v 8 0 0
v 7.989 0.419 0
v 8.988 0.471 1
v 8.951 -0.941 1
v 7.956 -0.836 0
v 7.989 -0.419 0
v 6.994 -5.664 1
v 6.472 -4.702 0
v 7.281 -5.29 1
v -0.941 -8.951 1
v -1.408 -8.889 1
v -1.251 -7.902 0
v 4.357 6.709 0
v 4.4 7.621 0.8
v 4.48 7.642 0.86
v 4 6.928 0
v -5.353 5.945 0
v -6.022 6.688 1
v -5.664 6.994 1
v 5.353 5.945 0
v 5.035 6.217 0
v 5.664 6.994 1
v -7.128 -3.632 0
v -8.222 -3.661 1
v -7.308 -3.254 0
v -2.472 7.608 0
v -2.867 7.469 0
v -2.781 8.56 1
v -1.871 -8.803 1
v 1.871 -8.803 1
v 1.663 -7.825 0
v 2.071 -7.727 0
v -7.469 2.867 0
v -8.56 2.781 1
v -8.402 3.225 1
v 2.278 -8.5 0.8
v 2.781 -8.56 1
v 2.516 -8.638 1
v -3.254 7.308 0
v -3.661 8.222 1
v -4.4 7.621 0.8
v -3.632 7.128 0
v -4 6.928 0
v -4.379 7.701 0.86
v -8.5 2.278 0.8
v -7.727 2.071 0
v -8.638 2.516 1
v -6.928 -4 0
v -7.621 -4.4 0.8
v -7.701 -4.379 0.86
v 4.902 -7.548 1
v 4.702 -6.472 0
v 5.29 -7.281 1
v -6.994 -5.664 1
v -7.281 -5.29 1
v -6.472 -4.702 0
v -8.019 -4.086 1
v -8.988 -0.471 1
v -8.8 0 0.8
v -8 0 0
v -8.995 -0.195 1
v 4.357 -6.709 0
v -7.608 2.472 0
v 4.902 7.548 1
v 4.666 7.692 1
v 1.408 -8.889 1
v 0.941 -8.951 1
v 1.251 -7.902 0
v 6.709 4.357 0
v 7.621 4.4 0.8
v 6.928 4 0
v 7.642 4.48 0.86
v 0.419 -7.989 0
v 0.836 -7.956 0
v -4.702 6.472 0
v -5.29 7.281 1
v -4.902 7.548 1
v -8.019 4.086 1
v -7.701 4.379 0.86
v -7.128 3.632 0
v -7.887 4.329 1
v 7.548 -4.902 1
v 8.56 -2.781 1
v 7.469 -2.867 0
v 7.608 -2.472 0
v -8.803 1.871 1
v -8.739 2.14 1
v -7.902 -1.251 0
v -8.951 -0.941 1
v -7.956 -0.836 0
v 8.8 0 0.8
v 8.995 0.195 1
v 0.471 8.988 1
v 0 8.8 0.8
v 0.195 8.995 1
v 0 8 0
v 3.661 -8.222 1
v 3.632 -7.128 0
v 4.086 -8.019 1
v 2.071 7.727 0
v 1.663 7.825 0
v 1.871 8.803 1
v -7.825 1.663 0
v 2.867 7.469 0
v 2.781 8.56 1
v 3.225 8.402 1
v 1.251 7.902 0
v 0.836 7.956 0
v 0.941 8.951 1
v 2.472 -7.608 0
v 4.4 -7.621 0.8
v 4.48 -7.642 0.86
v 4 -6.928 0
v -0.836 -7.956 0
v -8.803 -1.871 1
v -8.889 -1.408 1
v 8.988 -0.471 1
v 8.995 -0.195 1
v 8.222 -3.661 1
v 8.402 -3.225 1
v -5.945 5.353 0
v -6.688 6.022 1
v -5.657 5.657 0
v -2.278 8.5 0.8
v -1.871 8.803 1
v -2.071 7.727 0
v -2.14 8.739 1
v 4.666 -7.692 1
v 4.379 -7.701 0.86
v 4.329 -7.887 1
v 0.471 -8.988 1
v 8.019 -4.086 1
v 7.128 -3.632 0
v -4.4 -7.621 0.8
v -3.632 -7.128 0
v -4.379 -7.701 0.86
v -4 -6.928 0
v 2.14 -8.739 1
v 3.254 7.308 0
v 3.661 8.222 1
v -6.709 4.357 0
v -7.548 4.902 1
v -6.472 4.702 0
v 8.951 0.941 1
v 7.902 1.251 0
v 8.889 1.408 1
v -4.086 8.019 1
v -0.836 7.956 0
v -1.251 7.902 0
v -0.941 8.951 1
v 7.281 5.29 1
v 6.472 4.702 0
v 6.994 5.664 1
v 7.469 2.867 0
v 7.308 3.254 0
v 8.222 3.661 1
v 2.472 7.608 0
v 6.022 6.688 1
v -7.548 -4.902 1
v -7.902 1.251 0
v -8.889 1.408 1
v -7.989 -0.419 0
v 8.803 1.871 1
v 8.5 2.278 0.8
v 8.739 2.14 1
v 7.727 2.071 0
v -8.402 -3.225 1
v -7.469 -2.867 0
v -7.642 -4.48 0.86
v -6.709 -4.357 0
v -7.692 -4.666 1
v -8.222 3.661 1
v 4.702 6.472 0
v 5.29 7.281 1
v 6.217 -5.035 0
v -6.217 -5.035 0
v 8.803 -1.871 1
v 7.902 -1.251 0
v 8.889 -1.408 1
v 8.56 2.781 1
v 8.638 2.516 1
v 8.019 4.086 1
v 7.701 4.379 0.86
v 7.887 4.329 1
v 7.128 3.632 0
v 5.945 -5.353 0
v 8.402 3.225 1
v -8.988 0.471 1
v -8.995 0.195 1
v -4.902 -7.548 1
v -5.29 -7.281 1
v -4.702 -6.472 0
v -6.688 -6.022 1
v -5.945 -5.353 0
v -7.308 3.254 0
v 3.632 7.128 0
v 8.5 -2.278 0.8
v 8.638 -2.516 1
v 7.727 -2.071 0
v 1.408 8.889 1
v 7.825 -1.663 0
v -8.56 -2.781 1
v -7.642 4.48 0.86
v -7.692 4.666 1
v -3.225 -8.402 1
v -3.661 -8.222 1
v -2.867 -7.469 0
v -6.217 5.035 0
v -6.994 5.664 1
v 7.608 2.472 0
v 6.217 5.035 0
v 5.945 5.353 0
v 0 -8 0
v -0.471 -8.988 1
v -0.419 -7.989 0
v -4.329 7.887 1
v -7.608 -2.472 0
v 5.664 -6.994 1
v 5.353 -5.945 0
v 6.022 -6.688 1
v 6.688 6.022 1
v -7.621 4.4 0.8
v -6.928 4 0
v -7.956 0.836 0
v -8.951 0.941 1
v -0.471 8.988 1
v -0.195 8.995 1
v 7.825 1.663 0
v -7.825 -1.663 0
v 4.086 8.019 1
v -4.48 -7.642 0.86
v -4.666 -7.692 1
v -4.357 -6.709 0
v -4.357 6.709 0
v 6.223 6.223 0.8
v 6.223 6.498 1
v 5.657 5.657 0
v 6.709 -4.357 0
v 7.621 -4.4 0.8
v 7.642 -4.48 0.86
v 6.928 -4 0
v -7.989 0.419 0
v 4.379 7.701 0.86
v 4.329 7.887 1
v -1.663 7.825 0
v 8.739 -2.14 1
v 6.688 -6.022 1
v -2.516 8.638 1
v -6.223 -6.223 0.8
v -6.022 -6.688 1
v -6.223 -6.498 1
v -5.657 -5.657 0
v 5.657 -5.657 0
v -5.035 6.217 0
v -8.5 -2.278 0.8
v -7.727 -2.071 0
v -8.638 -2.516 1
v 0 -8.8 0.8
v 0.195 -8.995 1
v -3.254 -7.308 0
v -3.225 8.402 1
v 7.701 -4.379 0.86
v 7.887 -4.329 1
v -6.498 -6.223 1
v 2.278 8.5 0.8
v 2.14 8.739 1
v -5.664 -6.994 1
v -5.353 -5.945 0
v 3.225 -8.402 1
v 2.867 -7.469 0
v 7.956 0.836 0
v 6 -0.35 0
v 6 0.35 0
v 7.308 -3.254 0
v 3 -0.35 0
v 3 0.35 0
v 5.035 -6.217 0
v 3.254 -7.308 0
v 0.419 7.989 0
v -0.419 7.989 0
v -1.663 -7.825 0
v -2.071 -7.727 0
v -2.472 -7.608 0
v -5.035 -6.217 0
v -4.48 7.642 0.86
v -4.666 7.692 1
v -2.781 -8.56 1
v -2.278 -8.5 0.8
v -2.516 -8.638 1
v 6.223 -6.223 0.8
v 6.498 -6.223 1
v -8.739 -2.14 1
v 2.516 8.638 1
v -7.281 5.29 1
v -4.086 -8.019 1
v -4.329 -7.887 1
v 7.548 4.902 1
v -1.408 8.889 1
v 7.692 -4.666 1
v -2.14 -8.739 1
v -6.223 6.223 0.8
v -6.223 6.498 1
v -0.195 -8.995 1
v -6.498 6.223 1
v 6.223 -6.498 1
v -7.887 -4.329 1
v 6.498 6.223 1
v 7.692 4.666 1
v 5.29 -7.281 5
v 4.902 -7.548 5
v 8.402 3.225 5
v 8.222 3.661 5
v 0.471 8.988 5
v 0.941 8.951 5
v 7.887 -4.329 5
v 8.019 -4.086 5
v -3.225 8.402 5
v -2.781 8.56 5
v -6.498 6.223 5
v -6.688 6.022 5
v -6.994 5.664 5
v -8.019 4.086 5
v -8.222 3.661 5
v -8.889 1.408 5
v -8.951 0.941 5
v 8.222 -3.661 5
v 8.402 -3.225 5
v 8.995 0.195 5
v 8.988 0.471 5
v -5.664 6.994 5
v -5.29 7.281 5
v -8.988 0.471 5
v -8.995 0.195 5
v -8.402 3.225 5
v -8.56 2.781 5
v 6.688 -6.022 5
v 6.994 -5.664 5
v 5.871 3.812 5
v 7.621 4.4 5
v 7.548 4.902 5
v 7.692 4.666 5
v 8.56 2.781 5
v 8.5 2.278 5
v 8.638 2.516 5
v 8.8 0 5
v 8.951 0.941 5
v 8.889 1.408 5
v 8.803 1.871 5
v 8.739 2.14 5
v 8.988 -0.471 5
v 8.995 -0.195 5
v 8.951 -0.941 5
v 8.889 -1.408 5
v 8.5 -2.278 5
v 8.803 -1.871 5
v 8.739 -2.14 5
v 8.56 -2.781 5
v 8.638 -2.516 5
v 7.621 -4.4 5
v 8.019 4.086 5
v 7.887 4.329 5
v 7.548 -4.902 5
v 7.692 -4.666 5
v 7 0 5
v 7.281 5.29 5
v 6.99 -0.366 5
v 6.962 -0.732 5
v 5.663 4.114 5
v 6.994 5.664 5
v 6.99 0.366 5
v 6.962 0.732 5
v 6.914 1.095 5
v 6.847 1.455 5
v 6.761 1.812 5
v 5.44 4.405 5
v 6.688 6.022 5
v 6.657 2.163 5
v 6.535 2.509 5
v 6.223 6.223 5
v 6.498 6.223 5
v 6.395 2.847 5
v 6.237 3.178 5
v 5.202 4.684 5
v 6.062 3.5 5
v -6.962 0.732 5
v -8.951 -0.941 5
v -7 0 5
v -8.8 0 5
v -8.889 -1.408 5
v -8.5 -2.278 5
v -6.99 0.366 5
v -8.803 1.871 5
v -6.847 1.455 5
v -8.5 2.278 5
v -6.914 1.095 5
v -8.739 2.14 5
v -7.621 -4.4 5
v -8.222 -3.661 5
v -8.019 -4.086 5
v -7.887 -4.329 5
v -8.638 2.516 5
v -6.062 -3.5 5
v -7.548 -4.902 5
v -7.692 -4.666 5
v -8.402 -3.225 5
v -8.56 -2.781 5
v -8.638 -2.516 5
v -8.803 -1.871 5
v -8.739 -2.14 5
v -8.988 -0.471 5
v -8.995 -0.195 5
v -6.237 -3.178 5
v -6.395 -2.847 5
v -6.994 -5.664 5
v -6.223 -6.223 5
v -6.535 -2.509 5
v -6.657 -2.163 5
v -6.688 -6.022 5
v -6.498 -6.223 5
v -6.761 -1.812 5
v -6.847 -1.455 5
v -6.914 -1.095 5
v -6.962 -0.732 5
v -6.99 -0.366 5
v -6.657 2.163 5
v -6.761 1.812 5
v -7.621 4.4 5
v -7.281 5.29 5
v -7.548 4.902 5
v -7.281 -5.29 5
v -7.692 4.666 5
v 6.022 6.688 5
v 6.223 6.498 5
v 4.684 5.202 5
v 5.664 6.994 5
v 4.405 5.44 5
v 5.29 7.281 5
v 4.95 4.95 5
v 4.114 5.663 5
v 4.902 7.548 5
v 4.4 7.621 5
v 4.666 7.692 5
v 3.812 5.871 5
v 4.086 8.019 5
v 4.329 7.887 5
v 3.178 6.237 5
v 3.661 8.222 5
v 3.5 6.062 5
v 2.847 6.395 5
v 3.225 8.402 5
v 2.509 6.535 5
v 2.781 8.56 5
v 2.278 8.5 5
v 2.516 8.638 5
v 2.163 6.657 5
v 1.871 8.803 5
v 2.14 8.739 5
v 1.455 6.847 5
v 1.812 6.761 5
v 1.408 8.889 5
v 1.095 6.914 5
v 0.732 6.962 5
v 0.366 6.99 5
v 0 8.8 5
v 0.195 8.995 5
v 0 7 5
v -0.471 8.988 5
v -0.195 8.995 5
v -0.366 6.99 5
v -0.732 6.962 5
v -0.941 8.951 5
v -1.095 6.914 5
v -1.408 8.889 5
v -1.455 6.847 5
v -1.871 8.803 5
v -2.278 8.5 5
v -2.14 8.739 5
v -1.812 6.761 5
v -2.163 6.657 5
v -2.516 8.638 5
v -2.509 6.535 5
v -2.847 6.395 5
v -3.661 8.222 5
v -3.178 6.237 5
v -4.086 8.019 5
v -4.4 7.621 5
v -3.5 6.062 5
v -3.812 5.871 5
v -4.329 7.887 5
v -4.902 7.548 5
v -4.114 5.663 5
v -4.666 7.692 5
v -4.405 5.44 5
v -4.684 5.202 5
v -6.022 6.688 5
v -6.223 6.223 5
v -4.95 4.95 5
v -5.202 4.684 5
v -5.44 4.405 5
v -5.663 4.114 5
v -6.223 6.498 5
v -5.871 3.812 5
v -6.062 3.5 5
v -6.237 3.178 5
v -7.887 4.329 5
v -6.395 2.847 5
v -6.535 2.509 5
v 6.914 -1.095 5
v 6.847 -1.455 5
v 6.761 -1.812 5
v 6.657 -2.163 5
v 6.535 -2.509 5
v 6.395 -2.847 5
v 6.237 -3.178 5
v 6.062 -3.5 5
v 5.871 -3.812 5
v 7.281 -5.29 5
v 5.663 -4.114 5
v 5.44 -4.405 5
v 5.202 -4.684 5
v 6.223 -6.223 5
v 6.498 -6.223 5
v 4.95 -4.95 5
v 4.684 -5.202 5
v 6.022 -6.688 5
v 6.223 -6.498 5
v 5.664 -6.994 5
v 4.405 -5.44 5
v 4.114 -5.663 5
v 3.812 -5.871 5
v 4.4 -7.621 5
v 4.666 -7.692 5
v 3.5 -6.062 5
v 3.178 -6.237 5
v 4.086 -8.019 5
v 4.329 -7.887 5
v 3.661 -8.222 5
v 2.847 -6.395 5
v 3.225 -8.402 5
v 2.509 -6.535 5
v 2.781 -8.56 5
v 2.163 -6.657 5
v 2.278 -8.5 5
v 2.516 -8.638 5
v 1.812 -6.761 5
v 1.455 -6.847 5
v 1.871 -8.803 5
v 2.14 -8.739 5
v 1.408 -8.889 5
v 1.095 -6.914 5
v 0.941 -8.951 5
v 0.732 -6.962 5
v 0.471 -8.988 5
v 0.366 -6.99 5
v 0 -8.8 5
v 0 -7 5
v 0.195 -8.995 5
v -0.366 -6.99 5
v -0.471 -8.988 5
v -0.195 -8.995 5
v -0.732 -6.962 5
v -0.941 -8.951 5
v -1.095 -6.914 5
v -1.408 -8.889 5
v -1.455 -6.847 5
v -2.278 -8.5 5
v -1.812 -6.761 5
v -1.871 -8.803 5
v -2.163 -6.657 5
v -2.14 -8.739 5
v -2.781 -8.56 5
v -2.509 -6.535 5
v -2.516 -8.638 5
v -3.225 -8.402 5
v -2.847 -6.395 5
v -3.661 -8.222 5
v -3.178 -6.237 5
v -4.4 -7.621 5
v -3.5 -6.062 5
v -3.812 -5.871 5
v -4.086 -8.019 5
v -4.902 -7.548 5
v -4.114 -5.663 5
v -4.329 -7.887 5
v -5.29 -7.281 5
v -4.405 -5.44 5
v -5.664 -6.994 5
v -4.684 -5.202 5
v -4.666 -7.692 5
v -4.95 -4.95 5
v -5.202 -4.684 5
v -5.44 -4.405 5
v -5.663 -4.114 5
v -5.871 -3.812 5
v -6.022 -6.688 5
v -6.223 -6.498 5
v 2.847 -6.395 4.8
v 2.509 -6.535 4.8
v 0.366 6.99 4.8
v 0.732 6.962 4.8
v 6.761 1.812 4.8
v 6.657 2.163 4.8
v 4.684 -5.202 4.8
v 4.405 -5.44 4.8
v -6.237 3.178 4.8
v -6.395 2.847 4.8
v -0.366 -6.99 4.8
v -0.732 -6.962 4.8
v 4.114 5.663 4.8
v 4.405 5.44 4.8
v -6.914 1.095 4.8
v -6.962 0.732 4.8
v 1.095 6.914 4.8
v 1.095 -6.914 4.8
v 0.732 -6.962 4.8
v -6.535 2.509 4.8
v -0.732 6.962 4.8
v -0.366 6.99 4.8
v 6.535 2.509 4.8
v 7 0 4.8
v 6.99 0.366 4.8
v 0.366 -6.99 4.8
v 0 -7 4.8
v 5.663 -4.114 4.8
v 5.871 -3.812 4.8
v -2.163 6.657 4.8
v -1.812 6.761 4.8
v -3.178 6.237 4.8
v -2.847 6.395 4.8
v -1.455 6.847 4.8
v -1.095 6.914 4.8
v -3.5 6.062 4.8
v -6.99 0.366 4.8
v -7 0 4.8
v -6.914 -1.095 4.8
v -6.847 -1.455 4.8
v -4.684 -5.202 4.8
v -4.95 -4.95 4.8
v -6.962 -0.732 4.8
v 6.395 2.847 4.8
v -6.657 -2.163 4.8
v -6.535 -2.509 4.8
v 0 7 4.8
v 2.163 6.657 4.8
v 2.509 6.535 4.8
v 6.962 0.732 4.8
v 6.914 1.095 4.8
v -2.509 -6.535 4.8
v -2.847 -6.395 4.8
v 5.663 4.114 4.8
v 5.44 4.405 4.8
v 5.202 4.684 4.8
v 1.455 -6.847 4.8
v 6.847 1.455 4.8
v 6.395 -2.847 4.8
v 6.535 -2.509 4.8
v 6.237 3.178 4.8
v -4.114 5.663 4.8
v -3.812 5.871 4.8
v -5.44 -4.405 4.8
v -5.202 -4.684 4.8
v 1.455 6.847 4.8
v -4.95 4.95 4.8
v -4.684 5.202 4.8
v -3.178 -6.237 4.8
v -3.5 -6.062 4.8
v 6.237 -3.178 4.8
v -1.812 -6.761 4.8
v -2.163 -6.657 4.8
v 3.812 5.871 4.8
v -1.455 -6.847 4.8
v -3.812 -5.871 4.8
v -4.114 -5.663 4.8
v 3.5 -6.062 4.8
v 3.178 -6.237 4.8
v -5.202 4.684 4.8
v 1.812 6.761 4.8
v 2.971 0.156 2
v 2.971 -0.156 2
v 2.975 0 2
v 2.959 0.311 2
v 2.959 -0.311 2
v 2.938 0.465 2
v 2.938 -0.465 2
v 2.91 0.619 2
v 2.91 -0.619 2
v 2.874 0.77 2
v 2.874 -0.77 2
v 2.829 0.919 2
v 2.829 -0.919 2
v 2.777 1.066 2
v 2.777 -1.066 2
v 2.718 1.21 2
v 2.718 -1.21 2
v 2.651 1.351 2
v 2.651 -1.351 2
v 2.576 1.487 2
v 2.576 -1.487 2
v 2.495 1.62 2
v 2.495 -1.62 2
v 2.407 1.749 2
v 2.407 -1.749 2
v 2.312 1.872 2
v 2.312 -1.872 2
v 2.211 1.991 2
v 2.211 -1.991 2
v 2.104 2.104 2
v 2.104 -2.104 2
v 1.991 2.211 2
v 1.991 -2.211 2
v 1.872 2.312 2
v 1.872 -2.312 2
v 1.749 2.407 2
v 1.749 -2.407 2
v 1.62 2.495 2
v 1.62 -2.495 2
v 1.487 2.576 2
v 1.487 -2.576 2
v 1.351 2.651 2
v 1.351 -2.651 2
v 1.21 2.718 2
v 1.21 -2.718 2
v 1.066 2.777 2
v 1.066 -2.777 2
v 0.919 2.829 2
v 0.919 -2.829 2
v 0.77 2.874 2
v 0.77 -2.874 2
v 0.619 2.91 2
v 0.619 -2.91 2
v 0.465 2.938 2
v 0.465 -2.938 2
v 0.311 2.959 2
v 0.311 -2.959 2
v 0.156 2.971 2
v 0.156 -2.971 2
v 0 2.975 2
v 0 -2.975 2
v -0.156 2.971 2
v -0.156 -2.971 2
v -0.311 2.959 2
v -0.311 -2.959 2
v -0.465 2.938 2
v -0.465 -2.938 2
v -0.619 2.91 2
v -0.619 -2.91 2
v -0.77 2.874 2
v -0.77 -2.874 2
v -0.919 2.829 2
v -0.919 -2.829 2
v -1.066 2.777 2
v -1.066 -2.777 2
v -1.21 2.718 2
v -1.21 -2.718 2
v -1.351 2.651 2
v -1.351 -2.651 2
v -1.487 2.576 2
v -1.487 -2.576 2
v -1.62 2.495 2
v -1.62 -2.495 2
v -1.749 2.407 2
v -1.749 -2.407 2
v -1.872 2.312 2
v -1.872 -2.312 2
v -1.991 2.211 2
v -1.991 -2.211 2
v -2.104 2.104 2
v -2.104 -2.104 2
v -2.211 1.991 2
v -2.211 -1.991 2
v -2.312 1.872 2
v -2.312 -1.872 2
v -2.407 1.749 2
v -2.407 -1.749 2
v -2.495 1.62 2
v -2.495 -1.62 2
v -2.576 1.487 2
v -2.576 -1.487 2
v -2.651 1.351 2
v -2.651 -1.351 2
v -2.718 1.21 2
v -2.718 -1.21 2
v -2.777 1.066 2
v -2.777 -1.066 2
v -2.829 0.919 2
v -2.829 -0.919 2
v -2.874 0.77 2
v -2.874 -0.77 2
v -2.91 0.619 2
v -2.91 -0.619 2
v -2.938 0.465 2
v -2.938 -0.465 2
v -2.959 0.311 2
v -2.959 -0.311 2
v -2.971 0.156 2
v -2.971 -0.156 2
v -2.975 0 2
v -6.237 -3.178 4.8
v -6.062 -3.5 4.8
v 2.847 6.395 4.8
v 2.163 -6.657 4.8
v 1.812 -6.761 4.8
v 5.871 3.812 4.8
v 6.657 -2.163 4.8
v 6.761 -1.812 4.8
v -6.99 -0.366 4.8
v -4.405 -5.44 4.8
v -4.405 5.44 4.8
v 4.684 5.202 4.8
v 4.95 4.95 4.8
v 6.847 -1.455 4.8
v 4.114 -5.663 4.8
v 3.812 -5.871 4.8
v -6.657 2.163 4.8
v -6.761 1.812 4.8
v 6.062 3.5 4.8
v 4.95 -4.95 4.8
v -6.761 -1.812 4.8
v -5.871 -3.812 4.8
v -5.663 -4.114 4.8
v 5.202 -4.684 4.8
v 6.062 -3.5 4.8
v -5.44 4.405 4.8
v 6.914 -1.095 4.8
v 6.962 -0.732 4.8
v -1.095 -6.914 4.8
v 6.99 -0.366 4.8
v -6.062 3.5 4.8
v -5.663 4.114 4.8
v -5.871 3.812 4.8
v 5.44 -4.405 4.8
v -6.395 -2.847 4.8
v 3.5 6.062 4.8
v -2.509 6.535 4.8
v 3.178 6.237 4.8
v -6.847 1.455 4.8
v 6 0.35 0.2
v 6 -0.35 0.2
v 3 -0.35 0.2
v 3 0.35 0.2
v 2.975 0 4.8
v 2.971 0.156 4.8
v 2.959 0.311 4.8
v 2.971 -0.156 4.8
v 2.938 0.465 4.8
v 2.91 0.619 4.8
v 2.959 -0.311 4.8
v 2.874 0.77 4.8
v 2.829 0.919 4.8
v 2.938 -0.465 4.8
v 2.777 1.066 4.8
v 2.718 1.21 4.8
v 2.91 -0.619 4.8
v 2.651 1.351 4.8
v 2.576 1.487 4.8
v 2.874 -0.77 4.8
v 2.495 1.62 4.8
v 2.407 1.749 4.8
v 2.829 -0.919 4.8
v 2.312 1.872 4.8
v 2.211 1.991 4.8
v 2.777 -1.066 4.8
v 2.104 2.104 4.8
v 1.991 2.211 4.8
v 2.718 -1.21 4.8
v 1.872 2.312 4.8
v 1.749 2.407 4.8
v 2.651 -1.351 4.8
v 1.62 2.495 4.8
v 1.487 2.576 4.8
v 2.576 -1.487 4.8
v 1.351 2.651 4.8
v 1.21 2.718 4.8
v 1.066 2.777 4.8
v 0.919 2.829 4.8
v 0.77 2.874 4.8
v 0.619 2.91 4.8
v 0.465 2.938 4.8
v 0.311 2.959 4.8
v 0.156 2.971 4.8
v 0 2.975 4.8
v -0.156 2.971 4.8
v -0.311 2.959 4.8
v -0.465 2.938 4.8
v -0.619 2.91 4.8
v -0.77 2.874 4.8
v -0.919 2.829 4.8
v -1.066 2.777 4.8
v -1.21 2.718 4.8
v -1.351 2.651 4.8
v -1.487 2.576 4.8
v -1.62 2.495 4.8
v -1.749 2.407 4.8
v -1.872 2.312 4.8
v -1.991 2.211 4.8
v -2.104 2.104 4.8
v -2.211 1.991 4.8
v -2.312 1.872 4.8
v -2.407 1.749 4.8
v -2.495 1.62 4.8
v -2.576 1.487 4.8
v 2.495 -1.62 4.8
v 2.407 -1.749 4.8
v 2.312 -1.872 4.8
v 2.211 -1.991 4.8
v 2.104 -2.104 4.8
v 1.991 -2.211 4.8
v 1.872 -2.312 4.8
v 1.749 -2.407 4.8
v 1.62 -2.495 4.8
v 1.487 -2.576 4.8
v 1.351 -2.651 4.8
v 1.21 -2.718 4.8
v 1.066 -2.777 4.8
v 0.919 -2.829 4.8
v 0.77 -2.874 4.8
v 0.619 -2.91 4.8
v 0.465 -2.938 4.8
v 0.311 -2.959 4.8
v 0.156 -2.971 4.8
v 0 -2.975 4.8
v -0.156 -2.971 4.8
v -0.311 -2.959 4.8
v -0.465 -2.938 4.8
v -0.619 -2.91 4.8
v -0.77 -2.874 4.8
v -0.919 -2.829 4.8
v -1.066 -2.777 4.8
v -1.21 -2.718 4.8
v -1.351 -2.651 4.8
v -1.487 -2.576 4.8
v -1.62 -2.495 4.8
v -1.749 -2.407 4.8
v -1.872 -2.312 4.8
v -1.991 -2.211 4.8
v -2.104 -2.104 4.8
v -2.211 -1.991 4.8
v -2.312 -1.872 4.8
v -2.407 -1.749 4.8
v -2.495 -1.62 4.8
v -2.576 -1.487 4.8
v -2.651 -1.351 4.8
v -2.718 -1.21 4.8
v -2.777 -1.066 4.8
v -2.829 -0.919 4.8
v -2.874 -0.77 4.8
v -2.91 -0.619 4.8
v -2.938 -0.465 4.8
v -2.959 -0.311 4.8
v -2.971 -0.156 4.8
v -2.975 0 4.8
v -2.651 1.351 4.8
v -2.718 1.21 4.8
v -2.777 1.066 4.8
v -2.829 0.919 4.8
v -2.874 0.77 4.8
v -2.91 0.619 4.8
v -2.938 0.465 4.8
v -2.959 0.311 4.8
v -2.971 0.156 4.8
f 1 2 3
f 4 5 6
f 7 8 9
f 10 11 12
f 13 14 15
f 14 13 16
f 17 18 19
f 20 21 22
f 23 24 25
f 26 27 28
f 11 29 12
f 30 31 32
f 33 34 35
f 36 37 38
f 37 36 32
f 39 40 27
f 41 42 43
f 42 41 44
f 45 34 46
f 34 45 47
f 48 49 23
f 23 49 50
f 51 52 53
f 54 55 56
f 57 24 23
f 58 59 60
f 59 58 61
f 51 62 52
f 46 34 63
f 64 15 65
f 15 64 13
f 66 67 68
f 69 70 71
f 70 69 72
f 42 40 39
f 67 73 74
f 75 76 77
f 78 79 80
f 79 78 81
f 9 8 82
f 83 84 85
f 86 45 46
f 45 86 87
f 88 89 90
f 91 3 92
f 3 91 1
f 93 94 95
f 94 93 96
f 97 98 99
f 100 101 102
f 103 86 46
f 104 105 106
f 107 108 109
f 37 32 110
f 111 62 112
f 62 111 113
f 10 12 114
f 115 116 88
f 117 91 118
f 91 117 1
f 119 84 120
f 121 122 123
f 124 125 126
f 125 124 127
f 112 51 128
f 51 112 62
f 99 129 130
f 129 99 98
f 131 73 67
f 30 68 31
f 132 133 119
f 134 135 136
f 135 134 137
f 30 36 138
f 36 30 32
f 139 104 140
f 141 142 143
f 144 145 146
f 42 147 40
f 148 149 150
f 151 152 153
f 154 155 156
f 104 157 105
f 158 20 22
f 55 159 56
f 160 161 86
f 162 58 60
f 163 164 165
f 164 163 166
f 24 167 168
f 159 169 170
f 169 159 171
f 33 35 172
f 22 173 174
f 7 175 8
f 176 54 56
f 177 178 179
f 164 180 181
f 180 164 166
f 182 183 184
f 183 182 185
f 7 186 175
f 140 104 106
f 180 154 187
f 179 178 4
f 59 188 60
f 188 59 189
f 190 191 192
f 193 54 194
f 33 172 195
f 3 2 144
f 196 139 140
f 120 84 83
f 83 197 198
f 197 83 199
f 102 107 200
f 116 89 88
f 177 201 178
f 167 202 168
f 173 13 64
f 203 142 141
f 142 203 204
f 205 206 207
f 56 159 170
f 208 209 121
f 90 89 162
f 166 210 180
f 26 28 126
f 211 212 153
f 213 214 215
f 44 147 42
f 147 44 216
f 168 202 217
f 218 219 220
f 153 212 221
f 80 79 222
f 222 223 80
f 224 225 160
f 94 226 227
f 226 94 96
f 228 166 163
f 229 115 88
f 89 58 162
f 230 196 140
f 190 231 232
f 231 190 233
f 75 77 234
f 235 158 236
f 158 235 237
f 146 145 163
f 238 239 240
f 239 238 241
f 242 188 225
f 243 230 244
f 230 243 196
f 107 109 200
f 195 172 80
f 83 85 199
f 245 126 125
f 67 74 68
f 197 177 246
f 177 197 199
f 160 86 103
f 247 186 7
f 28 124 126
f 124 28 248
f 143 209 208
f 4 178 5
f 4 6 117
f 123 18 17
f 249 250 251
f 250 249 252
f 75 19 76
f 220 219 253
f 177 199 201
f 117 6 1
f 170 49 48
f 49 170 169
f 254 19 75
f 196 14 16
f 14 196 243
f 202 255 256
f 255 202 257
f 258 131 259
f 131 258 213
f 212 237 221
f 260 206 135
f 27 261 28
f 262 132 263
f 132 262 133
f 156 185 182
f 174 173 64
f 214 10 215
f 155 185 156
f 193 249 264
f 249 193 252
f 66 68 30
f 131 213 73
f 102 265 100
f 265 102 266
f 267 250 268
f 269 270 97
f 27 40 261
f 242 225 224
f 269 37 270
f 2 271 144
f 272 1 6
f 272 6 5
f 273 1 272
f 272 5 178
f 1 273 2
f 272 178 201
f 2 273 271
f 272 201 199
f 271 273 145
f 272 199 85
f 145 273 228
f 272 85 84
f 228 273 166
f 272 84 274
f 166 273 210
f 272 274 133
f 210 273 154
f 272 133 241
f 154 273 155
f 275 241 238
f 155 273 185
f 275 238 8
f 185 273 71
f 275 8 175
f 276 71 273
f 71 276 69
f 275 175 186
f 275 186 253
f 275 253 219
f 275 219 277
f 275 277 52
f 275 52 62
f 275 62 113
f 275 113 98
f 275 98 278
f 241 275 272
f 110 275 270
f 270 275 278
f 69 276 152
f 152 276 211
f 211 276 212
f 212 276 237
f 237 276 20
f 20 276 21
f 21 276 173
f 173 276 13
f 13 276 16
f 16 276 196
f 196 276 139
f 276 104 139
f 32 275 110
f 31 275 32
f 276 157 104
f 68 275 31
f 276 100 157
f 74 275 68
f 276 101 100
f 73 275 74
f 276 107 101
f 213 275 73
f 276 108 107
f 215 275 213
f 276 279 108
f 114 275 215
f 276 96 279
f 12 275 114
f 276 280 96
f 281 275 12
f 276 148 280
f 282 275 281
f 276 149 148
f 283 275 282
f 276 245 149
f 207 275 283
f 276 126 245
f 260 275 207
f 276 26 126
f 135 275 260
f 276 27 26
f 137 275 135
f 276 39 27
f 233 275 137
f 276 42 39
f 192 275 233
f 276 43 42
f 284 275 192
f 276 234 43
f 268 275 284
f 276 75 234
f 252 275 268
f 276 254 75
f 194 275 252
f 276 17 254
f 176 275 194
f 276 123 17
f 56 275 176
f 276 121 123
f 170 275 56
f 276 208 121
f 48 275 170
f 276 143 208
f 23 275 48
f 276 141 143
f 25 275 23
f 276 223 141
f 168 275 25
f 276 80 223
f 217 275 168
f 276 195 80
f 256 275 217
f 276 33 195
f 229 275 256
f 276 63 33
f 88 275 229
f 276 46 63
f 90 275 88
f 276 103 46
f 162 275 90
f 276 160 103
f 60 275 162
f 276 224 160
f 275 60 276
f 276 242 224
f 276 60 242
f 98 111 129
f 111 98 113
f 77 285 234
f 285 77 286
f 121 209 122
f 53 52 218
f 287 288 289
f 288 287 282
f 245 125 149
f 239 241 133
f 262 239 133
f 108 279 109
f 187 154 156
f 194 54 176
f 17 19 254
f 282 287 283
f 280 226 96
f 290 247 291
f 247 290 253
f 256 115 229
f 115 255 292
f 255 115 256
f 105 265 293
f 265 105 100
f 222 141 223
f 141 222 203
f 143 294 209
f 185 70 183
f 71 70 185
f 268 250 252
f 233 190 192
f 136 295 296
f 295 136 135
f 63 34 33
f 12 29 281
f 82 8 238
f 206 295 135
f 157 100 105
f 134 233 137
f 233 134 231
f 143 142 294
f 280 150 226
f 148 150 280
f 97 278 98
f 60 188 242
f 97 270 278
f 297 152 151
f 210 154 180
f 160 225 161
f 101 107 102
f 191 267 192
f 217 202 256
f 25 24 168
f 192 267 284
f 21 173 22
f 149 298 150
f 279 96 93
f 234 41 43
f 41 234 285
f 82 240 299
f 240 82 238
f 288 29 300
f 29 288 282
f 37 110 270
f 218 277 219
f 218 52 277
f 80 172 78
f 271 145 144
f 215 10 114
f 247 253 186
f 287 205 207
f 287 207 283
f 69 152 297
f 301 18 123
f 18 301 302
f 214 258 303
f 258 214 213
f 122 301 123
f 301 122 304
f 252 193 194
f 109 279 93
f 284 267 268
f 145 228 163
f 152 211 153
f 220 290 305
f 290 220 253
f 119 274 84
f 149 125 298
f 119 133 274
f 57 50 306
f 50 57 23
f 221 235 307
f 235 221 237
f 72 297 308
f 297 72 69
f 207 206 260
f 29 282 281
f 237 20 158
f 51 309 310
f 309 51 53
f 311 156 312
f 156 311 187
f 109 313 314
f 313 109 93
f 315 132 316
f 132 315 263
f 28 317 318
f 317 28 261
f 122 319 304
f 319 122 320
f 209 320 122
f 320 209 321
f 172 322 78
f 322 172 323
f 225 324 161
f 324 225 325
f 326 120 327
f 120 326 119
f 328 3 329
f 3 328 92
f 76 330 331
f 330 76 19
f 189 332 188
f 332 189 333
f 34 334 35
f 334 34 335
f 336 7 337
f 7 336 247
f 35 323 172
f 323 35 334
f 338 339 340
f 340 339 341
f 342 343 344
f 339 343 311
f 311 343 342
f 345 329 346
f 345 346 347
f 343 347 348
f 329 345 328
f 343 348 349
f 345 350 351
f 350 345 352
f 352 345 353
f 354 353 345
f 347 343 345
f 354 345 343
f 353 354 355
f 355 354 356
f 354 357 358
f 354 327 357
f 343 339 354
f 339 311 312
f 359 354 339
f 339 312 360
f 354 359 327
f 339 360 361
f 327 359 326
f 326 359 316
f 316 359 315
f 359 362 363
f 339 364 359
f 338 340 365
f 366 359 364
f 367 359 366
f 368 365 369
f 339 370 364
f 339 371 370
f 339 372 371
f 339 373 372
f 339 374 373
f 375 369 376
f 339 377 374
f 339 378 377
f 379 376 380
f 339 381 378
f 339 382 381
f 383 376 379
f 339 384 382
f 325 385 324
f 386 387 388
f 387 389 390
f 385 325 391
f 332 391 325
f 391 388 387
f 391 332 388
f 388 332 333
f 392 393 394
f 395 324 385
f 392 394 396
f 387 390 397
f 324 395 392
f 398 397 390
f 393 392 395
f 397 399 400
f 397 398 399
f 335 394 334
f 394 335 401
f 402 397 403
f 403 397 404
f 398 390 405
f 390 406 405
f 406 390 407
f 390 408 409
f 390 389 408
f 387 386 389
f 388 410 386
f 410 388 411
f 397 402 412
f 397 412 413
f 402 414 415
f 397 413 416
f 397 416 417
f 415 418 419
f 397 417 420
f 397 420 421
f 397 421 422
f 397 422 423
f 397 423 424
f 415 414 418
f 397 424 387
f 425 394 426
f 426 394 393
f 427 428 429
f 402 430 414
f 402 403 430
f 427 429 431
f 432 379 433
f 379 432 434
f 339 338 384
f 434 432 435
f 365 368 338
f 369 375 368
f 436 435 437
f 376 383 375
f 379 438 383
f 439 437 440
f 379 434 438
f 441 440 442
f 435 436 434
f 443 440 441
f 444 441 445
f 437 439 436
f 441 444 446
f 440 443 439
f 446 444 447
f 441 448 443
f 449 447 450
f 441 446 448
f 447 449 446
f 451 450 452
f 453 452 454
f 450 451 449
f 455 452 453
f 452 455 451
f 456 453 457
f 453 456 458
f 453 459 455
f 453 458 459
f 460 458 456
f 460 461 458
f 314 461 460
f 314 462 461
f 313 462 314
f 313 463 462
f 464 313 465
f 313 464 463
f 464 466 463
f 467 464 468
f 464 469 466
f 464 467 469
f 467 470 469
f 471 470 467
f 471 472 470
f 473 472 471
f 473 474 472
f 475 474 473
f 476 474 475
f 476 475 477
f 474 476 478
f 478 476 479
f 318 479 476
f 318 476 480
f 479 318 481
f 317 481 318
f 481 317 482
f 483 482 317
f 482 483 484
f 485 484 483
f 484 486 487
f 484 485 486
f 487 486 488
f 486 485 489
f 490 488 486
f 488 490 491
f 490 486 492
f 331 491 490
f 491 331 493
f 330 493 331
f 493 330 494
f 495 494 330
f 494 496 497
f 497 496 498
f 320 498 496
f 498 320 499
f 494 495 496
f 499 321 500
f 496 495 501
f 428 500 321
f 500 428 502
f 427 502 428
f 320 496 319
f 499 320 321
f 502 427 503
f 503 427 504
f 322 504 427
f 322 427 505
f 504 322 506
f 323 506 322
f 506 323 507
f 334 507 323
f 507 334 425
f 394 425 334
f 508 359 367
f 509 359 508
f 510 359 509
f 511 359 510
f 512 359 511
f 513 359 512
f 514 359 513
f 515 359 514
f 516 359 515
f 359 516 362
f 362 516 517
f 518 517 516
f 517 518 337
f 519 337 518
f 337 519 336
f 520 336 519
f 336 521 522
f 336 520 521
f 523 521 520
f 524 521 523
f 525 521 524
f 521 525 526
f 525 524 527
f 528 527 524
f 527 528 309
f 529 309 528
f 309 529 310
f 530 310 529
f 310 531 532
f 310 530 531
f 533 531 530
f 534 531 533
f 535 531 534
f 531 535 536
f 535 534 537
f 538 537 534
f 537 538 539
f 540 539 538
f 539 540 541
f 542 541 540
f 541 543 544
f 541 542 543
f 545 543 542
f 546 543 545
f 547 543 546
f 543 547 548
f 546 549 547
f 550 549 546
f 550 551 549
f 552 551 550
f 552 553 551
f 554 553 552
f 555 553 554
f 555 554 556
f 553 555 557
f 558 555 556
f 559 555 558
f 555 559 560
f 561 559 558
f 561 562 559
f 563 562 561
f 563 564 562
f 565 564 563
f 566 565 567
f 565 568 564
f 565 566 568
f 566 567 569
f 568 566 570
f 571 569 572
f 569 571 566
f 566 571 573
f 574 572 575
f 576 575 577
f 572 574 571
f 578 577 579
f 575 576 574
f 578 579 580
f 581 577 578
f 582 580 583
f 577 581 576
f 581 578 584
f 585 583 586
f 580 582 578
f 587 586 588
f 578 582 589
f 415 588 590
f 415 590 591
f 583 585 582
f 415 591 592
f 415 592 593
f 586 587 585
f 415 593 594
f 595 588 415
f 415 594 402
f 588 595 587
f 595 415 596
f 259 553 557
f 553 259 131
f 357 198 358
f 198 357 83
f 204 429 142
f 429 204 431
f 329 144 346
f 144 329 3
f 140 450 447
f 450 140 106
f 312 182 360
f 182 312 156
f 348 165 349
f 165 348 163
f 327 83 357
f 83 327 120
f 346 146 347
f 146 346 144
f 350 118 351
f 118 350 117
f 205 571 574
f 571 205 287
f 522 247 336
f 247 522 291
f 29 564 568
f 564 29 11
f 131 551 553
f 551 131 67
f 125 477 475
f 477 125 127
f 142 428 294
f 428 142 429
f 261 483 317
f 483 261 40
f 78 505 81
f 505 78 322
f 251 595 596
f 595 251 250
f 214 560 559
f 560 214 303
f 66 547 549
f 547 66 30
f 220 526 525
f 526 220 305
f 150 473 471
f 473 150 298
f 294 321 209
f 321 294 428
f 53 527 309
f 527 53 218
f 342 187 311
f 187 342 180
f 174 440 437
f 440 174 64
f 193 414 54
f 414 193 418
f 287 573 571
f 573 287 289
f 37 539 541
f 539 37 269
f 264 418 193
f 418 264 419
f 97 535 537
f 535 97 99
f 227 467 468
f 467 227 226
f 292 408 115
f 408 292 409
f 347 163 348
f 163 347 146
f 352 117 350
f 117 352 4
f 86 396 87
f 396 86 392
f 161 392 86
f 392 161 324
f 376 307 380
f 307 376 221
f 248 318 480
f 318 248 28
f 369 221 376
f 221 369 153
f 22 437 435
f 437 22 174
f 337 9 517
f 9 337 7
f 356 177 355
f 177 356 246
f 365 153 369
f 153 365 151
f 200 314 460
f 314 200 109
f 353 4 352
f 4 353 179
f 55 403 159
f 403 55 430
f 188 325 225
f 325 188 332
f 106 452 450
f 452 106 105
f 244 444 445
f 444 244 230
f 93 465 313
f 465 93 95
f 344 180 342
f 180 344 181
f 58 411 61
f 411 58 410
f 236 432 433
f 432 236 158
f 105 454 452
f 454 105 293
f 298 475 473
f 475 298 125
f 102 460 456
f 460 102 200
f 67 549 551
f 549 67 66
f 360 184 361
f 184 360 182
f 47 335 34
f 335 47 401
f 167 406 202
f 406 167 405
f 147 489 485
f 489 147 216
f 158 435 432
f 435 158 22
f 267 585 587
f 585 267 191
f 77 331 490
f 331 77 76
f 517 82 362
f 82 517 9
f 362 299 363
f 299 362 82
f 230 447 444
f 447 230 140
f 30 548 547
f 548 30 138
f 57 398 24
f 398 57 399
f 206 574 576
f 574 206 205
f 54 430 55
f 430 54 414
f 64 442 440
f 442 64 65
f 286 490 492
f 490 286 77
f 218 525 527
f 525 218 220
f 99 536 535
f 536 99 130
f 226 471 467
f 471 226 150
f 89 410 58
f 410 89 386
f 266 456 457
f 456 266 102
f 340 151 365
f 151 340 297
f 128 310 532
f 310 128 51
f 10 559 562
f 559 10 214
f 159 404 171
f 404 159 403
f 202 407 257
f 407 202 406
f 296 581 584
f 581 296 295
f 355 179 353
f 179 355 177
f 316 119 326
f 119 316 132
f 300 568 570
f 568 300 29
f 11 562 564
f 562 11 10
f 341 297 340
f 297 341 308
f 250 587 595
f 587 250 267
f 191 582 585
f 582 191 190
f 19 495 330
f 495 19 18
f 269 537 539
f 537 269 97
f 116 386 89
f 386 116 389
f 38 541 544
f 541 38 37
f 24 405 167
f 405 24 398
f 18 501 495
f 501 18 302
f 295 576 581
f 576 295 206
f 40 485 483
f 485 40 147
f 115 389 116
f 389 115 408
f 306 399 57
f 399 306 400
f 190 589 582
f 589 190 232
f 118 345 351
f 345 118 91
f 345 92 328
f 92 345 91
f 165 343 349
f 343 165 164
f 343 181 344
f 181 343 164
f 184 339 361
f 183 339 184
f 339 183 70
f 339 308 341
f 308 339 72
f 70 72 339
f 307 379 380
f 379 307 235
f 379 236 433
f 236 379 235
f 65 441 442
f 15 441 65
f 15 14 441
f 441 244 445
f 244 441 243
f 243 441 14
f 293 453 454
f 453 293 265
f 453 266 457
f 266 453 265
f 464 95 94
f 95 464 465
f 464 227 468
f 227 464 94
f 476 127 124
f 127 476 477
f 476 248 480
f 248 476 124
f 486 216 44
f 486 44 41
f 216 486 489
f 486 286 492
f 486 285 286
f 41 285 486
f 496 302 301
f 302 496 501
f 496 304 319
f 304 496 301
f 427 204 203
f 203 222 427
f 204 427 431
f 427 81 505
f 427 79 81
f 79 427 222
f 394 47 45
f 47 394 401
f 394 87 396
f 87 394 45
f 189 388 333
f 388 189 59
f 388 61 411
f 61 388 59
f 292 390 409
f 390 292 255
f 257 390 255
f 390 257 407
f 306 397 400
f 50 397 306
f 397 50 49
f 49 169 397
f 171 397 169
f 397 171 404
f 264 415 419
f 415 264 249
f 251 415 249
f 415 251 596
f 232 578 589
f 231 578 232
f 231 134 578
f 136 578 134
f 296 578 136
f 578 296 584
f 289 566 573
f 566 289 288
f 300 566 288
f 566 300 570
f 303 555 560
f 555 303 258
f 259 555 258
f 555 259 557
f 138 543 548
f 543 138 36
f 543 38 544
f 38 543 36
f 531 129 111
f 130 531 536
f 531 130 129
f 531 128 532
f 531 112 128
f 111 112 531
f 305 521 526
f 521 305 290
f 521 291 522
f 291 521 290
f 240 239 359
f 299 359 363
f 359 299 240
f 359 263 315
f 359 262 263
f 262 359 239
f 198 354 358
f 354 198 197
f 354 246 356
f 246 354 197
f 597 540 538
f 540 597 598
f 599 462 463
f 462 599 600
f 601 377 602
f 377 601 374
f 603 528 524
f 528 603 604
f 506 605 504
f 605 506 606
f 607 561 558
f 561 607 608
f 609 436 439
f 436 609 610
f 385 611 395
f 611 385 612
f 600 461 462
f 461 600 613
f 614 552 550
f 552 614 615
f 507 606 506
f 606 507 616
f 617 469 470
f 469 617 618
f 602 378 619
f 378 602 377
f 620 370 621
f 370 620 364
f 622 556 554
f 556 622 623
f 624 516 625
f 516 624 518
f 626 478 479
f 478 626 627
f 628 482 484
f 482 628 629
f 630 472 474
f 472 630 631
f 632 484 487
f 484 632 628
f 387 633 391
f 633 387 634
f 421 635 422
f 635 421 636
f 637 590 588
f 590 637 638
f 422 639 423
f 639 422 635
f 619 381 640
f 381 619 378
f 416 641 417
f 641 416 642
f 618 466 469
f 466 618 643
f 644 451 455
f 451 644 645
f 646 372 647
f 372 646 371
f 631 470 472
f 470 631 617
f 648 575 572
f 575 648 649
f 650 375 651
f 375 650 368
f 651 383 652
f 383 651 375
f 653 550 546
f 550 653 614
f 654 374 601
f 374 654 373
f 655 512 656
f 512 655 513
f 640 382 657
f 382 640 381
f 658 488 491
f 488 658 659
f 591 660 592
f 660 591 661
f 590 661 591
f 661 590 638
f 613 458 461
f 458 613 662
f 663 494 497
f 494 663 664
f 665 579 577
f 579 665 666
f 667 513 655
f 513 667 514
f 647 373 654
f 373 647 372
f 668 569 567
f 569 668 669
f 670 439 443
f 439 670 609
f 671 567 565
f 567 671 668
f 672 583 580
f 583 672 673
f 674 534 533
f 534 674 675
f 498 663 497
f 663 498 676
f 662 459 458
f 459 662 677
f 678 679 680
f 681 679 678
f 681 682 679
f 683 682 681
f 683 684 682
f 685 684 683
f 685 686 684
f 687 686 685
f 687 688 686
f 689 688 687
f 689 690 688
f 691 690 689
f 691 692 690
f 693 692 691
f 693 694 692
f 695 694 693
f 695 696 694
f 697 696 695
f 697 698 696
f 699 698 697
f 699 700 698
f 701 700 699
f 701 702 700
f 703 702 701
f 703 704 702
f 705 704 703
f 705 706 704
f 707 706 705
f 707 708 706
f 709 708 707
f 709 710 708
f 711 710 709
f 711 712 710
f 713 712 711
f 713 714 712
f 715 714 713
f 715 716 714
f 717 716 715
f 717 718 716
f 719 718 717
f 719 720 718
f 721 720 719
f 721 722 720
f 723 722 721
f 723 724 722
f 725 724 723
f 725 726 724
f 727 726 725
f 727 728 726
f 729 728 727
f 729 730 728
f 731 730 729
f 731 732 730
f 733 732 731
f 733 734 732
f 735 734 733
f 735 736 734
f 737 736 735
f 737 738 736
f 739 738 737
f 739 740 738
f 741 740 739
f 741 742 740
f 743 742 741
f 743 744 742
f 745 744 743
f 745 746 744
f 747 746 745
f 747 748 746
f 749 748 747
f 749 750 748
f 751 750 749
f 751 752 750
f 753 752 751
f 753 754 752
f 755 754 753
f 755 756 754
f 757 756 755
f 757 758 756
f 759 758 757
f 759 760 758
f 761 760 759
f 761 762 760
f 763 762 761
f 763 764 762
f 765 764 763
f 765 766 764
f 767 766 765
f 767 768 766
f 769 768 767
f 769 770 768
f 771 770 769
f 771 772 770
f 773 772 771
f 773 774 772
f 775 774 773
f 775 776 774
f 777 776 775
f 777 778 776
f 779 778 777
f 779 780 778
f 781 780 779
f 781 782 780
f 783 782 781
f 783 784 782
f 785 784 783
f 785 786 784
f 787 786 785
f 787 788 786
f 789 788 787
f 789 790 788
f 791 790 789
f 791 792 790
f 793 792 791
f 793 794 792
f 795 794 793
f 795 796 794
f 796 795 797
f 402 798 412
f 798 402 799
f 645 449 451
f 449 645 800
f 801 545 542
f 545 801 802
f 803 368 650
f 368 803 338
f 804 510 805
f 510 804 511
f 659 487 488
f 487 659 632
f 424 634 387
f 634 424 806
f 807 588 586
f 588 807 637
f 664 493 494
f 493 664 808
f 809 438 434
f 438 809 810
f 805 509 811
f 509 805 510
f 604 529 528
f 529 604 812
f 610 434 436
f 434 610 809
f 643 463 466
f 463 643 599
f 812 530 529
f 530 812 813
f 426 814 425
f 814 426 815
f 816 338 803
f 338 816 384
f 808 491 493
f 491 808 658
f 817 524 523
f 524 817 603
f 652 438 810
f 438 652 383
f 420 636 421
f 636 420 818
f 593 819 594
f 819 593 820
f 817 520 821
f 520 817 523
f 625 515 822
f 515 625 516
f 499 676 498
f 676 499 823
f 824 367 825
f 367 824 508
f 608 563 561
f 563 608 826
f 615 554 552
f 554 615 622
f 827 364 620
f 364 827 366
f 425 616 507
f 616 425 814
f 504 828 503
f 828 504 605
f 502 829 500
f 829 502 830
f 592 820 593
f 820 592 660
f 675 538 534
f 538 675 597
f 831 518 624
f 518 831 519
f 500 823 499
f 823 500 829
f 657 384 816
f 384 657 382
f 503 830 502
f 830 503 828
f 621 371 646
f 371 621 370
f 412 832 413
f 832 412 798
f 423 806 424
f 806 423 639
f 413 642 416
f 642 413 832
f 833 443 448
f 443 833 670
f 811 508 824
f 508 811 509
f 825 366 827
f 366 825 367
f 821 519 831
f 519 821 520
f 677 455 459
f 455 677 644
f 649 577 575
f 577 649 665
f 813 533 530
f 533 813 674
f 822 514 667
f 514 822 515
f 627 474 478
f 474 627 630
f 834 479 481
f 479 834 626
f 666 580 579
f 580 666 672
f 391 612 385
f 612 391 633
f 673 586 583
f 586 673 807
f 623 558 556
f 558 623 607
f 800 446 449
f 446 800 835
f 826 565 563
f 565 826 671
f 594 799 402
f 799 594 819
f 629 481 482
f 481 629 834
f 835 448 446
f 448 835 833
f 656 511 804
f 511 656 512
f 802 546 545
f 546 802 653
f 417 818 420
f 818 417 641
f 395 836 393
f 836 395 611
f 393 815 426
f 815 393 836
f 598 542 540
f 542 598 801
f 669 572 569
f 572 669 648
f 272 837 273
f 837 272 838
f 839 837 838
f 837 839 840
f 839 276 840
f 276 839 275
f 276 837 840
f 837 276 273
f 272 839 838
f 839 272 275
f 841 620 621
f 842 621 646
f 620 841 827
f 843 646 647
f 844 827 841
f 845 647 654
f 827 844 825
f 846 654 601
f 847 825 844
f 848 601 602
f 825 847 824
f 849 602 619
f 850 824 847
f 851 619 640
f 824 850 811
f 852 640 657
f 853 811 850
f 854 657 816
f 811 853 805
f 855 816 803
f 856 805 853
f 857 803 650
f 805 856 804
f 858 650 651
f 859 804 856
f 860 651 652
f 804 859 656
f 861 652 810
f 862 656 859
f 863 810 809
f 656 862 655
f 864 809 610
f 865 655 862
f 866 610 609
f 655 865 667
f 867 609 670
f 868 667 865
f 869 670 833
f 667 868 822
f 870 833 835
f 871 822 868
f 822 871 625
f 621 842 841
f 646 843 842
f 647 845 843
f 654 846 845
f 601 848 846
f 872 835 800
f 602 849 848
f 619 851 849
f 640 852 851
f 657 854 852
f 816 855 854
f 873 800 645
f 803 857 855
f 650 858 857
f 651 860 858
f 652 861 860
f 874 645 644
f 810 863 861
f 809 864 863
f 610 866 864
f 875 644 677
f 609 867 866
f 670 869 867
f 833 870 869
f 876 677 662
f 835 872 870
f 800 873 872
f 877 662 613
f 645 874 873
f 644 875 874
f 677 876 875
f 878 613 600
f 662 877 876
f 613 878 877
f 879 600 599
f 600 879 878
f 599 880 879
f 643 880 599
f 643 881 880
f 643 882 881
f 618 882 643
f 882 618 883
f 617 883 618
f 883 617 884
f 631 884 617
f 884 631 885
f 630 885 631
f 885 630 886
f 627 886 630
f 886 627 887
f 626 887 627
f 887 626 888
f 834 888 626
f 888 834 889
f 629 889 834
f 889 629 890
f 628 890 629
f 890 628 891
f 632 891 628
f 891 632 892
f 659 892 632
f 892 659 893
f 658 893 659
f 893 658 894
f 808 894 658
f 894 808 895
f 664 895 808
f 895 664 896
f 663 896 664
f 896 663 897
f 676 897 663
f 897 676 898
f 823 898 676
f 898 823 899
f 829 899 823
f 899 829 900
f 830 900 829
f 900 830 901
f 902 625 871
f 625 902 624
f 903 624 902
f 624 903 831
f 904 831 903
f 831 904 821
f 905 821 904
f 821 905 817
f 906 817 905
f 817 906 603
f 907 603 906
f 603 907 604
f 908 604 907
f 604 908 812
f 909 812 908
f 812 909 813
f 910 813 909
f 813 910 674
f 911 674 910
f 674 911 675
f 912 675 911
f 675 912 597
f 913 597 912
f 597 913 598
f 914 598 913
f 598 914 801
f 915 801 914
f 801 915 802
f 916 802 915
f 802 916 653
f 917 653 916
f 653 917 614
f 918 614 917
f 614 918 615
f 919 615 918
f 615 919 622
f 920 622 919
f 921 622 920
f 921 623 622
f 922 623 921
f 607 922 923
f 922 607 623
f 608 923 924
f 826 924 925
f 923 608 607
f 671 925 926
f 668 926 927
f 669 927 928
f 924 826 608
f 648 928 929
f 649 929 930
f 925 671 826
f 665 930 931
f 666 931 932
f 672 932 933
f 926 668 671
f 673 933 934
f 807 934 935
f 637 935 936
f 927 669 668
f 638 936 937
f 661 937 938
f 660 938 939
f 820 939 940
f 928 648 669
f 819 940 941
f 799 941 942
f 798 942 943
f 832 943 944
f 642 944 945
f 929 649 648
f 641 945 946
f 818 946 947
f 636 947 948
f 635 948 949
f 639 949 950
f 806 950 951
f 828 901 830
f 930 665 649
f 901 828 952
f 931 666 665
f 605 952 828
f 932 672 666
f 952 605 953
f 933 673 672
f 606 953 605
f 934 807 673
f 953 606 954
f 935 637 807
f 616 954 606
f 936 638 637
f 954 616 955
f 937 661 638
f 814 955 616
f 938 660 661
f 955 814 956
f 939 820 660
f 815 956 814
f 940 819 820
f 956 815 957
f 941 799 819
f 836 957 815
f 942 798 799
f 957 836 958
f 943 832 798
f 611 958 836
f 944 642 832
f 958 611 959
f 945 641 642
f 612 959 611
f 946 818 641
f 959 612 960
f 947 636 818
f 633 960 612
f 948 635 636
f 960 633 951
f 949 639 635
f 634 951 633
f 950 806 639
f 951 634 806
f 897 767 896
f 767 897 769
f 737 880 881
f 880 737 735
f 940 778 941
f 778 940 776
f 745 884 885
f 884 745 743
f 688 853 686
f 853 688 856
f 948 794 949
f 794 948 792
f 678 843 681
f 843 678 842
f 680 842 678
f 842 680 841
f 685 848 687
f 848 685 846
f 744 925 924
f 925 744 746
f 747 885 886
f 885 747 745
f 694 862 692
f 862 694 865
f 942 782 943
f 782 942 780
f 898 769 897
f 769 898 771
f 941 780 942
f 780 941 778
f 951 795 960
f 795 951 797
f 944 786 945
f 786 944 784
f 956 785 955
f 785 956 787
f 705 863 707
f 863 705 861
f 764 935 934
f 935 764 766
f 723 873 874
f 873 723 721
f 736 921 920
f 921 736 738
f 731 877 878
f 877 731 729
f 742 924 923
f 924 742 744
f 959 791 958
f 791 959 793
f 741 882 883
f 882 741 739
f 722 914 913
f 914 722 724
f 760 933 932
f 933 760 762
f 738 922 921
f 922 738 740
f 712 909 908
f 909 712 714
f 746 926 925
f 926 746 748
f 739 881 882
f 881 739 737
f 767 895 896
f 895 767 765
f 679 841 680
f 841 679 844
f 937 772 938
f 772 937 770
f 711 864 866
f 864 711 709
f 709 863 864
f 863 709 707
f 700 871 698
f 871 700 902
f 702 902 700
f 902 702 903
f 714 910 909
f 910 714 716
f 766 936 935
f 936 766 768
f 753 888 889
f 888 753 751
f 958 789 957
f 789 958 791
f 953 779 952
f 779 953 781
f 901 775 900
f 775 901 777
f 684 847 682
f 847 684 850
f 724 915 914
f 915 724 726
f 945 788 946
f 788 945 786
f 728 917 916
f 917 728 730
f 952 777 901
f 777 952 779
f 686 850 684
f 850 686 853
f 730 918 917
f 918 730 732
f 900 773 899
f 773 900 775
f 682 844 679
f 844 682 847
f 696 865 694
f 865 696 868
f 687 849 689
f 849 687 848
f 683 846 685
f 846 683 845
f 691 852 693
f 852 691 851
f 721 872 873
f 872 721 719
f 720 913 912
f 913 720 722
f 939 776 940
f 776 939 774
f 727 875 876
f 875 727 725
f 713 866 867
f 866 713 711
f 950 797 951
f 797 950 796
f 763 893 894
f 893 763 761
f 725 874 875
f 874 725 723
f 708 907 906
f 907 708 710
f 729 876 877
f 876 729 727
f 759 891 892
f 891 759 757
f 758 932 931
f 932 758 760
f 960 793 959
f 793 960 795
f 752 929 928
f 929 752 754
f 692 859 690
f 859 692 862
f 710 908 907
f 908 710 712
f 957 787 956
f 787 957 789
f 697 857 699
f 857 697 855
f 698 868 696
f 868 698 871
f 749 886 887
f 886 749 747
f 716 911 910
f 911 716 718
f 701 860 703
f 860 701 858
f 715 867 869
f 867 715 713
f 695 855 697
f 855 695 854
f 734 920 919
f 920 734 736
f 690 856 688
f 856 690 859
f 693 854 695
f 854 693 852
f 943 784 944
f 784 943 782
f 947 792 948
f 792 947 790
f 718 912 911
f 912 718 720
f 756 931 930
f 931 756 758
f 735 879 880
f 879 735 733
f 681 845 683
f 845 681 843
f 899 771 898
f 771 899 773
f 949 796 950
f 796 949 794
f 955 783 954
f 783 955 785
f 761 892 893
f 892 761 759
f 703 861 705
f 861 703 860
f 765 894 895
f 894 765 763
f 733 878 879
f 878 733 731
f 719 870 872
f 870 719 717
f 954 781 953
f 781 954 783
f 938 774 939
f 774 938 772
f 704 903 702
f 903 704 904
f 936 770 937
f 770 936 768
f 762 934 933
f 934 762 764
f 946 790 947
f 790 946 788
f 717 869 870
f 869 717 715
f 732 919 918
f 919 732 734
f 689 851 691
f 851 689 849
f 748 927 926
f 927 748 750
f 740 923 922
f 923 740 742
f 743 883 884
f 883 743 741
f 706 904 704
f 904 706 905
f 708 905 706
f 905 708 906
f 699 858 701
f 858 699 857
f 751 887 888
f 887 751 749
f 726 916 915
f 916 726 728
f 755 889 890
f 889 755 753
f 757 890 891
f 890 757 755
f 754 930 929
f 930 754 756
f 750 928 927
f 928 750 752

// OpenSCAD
// Rotary knob for encoders and potentiometers

// Parameter definition

knob_diam              = 18;
knob_height            = 5;
chamfering_height      = 1.0;     // 45° chamfering on top side (height & width)

fluting_depth          = 0.2;     // ==> set to zero for smooth knob
fluting_count          = 24;

marking_depth          = 0.2;     // Marking line for knob position
marking_width          = 0.7;
marking_distance       = 3;     

outer_wall             = 2;

axis_diam              = 5.95;
axis_holder_indent     = 0.2;
axis_hole_depth        = 4;      // Max. knob height - outer wall
nut_axis_distance      = 0.7;     // distance from nut slot to axis hole wall

// Nut size according DIN934, M3 (plus tolerance for easy fit)
nut_diameter_e         = 0; //6.4;
nut_diameter_s         = 0; //5.55;
nut_thickness          = 0; //2.45;

screw_hole_diam        = 0;//3.2;

resol                  = 120;


// Constant calculation

knob_radius            = knob_diam / 2;
knob_top_radius        = knob_radius - chamfering_height;
fluting_step           = 360 / fluting_count;
fluting_block_size     = 2 * ( fluting_depth / sqrt (2) );
marking_length         = knob_radius - ( 2* marking_distance);
axis_radius            = axis_diam / 2;
axis_holder_diam       = knob_diam - ( 2* outer_wall );  // can be defined smaller manually for large knobs
axis_holder_radius     = axis_holder_diam / 2;
screw_hole_radius      = screw_hole_diam / 2;
screw_height           = knob_height - (axis_hole_depth / 2);   // can be defined manual, if desired
nut_x_pos              = -axis_radius - nut_axis_distance - ( nut_thickness / 2);
nutslot_z_pos          = knob_height - (( knob_height - screw_height) / 2);


// Construction main body

difference () {
    union () {
        cylinder (h = chamfering_height, r2 = knob_radius, r1 = knob_top_radius, center = false, $fn = resol);
        translate ( [ 0, 0, chamfering_height] ) {
            cylinder (h = knob_height - chamfering_height, r = knob_radius, center = false, $fn = resol);
        };
    };
    translate ( [ 0, 0, outer_wall] ) {
        cylinder (h = knob_height, r = knob_radius - outer_wall, center = false, $fn = resol);
    };
    // outer fluting
    for ( step = [ 0 : fluting_step : 360 ] ) {
        rotate ( [ 0, 0, step ] ) {
            translate ( [ knob_radius, 0, knob_height / 2] ) {
                rotate ( [ 0, 0, 45 ] ) {
                    cube ( [ fluting_block_size, fluting_block_size, knob_height ], center = true );
                };
            };
        };
    };
    // Position marking
    translate ( [ marking_distance, -marking_width / 2, 0 ] ) {
        cube ( [ marking_length, marking_width,  marking_depth ], center = false );
    };
    // Screw hole for outer body
    translate ( [  0, 0, screw_height] ) {
        rotate ( [ 0, -90, 0 ] ) {
            cylinder ( h = knob_radius, r = screw_hole_radius, center = false, $fn = resol );
        };
    };
};

// Axis holder (can be smaller than knob size minus wall size (default) for large knobs to save material, but be careful with forces from screwing in the nut)
difference () {
    union () {
        cylinder ( h = knob_height - axis_holder_indent, r = axis_holder_radius, center = false, $fn = resol);
    };
    translate ( [ 0, 0, knob_height - axis_hole_depth ] ) {
        cylinder ( h = axis_hole_depth, r = axis_radius, center = false, $fn = resol);
    };
    // Position marking
    translate ( [ marking_distance, -marking_width / 2, 0 ] ) {
        cube ( [ marking_length, marking_width,  marking_depth ], center = false );
    };
    // Screw hole for axis holder
    translate ( [  0, 0, screw_height] ) {
        rotate ( [ 0, -90, 0 ] ) {
            cylinder ( h = knob_radius, r = screw_hole_radius, center = false, $fn = resol );
        };
    };
    // Nut hole
    translate ( [ nut_x_pos, 0, nutslot_z_pos ] ) {
        cube ( [ nut_thickness, nut_diameter_s, knob_height - screw_height ], center = true);
    };
    translate ( [ nut_x_pos, 0, screw_height ] ) {
        rotate ( [ 0, 90, 0 ] ) {
            cylinder ( h = nut_thickness, d = nut_diameter_e, center = true, $fn = 6 );
        };
    };

};
